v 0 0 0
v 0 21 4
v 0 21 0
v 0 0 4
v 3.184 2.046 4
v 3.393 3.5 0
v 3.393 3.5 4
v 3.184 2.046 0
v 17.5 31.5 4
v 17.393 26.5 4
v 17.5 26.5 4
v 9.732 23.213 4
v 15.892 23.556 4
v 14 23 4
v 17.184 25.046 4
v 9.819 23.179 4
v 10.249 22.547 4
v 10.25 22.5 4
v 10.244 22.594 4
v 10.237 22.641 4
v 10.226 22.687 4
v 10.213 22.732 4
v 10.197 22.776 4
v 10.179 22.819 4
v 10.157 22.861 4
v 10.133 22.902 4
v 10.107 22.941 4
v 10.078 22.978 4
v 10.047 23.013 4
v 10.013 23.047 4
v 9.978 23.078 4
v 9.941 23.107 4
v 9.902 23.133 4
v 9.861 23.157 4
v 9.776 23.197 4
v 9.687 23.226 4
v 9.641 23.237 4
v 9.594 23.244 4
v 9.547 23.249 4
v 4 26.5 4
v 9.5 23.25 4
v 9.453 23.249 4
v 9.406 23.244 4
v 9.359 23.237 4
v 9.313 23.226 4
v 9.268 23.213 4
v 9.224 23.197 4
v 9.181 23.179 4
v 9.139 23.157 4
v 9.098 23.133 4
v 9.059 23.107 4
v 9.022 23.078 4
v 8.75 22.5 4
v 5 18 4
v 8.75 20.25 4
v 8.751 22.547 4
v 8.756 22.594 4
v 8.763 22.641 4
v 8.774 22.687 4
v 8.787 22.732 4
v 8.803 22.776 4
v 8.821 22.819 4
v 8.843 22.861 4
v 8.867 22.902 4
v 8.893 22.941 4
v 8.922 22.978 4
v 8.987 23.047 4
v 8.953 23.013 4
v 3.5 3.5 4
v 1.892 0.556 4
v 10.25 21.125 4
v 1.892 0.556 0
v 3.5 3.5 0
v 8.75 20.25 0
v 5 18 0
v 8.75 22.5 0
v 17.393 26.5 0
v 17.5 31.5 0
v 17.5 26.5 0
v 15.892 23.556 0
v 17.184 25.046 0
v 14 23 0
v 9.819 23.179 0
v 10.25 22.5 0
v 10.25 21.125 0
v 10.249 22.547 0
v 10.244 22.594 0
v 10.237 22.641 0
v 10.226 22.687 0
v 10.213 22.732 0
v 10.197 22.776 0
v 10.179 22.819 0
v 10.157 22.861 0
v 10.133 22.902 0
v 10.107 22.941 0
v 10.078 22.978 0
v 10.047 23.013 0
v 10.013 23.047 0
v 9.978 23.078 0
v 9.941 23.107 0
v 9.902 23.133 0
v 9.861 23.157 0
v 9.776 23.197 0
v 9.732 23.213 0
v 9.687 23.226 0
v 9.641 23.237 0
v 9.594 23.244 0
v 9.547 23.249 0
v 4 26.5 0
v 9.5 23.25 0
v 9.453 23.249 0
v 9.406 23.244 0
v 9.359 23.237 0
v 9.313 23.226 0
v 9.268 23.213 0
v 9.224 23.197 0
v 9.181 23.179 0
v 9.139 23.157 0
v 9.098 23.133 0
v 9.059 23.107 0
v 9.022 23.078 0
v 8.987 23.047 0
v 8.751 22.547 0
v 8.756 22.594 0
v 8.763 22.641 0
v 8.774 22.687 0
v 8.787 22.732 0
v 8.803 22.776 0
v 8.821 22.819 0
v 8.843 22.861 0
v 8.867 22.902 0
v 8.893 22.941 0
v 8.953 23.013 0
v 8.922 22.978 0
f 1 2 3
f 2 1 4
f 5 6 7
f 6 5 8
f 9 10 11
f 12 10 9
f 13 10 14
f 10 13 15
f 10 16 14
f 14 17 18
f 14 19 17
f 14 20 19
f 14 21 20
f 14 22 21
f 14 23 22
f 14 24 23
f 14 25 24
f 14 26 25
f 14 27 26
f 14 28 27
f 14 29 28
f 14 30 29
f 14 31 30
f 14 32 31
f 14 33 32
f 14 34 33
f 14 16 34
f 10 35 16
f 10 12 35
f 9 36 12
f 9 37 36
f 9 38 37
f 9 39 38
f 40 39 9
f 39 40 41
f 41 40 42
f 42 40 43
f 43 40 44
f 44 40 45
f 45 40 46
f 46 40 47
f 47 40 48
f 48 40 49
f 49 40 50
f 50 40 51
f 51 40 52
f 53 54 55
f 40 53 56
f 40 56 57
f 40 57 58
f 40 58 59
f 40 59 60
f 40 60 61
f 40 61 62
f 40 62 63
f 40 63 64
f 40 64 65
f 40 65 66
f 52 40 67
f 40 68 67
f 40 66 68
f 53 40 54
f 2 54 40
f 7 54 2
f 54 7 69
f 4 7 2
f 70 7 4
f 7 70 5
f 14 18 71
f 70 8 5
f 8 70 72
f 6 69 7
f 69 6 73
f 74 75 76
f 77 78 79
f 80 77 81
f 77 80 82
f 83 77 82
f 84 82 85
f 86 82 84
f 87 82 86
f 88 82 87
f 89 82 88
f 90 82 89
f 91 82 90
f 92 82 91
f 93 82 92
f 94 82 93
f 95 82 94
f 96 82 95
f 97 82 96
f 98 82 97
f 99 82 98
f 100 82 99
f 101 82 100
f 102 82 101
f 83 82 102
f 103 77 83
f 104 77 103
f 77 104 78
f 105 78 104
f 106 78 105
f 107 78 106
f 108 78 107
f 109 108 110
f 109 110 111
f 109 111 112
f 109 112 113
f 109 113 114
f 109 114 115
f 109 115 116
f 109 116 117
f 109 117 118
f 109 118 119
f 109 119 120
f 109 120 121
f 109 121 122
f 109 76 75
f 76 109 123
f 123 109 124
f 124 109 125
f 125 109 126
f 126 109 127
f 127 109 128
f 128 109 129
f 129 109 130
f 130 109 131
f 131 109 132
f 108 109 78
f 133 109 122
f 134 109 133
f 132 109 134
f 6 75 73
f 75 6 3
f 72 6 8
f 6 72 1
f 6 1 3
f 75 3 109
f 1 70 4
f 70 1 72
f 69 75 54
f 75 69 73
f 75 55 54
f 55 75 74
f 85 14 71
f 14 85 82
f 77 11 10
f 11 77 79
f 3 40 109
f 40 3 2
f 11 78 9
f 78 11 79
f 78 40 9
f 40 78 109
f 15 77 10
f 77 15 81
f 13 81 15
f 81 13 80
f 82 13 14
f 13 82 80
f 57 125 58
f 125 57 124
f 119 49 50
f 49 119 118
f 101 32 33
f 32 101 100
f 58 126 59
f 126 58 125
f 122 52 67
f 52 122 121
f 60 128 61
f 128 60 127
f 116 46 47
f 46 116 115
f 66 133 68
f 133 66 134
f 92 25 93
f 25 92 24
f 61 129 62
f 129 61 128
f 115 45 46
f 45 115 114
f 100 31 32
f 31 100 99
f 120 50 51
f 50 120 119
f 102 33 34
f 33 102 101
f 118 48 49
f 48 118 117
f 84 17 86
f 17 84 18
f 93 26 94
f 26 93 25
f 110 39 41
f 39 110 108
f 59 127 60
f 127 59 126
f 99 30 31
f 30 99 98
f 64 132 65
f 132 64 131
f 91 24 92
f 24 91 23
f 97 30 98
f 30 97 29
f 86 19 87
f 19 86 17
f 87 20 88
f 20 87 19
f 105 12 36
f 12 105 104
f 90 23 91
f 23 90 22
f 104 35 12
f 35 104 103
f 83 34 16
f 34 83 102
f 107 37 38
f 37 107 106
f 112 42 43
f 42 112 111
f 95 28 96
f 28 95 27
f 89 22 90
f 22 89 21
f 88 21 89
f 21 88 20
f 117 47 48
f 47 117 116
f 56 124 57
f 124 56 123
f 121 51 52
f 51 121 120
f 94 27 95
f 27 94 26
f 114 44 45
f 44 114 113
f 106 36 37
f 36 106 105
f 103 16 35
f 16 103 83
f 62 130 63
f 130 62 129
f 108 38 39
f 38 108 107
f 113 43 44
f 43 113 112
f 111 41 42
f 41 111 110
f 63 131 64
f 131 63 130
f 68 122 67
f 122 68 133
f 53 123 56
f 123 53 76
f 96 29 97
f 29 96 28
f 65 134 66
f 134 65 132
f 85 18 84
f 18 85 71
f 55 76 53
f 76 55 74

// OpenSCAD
// file: dotscad/pie.scad
// PieTest

/**
* @author: Marcel Jira

 * This module generates a pie slice in OpenSCAD. It is inspired by the
 * [dotscad](https://github.com/dotscad/dotscad)
 * project but uses a different approach.
 * I cannot say if this approach is worse or better.

 * @param float radius Radius of the pie
 * @param float angle  Angle (size) of the pie to slice
 * @param float height Height (thickness) of the pie
 * @param float spin   Angle to spin the slice on the Z axis
 */
module pie(radius, angle, height, spin=0) {
	// calculations
	ang = angle % 360;
	absAng = abs(ang);
	halfAng = absAng % 180;
	negAng = min(ang, 0);

	// submodules
	module pieCube() {
		translate([-radius - 1, 0, -1]) {
			cube([2*(radius + 1), radius + 1, height + 2]);
		}
	}

	module rotPieCube() {
		rotate([0, 0, halfAng]) {
			pieCube();
		}
	}

	if (angle != 0) {
		if (ang == 0) {
			cylinder(r=radius, h=height);
		} else {
			rotate([0, 0, spin + negAng]) {
				intersection() {
					cylinder(r=radius, h=height);
					if (absAng < 180) {
						difference() {
							pieCube();
							rotPieCube();
						}
					} else {
						union() {
							pieCube();
							rotPieCube();
						}
					}
				}
			}
		}
	}
}

/**
 * When used as a module (statement "use <pie.scad>") the example below will not
 * render. If you run this file alone, it will :)
 */
holderDiam=61;
clampDepth=1;
clampWidth=5;
notchDeg = 37;

holderRad = holderDiam / 2;
notchSize = holderRad + clampWidth;
cylSize = notchSize + clampWidth;

difference() {
    cylinder(clampDepth, cylSize, cylSize);

    translate([0, 0, -clampDepth]) {
        cylinder(clampDepth * 3, holderRad, holderRad);
    }

    for(ang=[0:3]) {
        difference() {
            translate([0, 0, -clampDepth]) {
                pie(notchSize, notchDeg, clampDepth * 3, spin=ang*360/3);
            }
        }
    }
}
// main file
use <dotscad/pie.scad>;

// Updated Nutcracker Lever Handle Replacement with Color Debugging
module lever_handle() {
    // curved bottom section of handle
    translate([0,3.5,0]) rotate([0,0,270]) pie(3.5, 90, 4);
    
    // Bottom section (3.5mm width) - RED
    color("red") {
        linear_extrude(height = 4)
        polygon(points = [
            [0, 3.5],          // Bottom-left
            [3.5, 3.5],        // Bottom-right
            [5, 18],         // Mid-section start
            [0, 18],         // Mid-section end
        ]);
    }
    
//    // Mid-section (5mm width) - GREEN
    color("green") {
        linear_extrude(height = 4)
        polygon(points = [
            [0, 18],         // Bottom-left of mid-section
            [5, 18],         // Bottom-right of mid-section
            [10, 21],       // Top-right (6.5mm width)
            [0, 21],         // Top-left (end of mid-section)
            [0, 18]          // Close the shape
        ]);
    }
    
    // Top section (6.5mm width) - BLUE
    color("blue") {
        linear_extrude(height = 4)
        polygon(points = [
            [0, 21],         // Bottom-left
            [10, 21],       // Bottom-right
            [14, 23],       // Bottom-right
            [14, 26.5],
            [4, 26.5],       // Extend further up if needed
            [0, 21]          // Close the shape
        ]);
    }

    color("orange") {
        linear_extrude(height = 4)
        polygon(points = [
            [4, 26.5],       // Bottom-left
            [17.5, 26.5],       // Bottom-right
            [17.5, 31.5],
            [4, 26.5]          // Close the shape
        ]);
    }
    
    color("pink") translate([14,26.5,0]) rotate([0,0,270]) pie(3.5, 90, 4);
}

// Render the lever handle
//lever_handle();

module lever_handle_with_hole() {
    difference() {
    // Include the original lever handle code
    lever_handle();

    // Add the hole (1.5mm diameter)
    color("black")  // To visualize the hole
    translate([9.5, 22.5, -2])  // Position the hole (z = -2 ensures it cuts through)
//    rotate([90, 0, 0])  // Align the cylinder vertically
    cylinder(d = 1.5, h = 10, $fn = 100);  // Diameter = 1.5mm, Height = 10mm (ensures it cuts fully)
            // Notch to slide onto the pin
            translate([8.75, 18.5, -2])  // Offset to create the notch
            cube([1.5, 4, 8]);  // Width = 1.5mm, Height = 5mm, Depth = 4mm
        
    }
}

// Render the lever handle with the hole
lever_handle_with_hole();
